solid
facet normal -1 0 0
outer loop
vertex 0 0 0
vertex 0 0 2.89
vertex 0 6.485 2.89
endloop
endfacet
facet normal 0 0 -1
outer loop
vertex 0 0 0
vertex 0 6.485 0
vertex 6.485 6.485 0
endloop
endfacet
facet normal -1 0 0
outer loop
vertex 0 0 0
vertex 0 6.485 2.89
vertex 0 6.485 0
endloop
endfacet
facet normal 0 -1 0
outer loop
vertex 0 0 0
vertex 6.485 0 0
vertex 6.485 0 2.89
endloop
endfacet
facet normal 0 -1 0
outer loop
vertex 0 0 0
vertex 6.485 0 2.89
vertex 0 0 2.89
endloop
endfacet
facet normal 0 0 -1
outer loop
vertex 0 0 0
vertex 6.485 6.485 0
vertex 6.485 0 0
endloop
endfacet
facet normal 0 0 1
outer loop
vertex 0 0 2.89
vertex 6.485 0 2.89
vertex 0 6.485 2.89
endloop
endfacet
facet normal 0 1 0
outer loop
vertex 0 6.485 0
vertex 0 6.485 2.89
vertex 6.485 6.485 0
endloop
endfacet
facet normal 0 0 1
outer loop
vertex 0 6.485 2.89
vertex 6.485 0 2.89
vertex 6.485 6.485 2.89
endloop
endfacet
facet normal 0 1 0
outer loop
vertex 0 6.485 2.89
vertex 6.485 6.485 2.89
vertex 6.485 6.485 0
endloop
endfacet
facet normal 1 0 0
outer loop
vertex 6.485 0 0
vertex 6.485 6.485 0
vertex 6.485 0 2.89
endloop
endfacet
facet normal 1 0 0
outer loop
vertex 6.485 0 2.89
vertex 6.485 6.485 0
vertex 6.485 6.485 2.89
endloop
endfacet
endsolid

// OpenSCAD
/* Warning, this is a very basic generator with a lot of approximation 
input data : [MFPF, 3XB, 6.485x6.485x2.89mm, 8, , A, C04-21552A]
generated by com.zoubworld.electronics.cad.model3d.Basic
Date : Sun Feb 15 10:50:49 CET 2026
*/

//body
color("black")
translate([0,0,0])
cube([6.485,6.485,2.89], center=false);
